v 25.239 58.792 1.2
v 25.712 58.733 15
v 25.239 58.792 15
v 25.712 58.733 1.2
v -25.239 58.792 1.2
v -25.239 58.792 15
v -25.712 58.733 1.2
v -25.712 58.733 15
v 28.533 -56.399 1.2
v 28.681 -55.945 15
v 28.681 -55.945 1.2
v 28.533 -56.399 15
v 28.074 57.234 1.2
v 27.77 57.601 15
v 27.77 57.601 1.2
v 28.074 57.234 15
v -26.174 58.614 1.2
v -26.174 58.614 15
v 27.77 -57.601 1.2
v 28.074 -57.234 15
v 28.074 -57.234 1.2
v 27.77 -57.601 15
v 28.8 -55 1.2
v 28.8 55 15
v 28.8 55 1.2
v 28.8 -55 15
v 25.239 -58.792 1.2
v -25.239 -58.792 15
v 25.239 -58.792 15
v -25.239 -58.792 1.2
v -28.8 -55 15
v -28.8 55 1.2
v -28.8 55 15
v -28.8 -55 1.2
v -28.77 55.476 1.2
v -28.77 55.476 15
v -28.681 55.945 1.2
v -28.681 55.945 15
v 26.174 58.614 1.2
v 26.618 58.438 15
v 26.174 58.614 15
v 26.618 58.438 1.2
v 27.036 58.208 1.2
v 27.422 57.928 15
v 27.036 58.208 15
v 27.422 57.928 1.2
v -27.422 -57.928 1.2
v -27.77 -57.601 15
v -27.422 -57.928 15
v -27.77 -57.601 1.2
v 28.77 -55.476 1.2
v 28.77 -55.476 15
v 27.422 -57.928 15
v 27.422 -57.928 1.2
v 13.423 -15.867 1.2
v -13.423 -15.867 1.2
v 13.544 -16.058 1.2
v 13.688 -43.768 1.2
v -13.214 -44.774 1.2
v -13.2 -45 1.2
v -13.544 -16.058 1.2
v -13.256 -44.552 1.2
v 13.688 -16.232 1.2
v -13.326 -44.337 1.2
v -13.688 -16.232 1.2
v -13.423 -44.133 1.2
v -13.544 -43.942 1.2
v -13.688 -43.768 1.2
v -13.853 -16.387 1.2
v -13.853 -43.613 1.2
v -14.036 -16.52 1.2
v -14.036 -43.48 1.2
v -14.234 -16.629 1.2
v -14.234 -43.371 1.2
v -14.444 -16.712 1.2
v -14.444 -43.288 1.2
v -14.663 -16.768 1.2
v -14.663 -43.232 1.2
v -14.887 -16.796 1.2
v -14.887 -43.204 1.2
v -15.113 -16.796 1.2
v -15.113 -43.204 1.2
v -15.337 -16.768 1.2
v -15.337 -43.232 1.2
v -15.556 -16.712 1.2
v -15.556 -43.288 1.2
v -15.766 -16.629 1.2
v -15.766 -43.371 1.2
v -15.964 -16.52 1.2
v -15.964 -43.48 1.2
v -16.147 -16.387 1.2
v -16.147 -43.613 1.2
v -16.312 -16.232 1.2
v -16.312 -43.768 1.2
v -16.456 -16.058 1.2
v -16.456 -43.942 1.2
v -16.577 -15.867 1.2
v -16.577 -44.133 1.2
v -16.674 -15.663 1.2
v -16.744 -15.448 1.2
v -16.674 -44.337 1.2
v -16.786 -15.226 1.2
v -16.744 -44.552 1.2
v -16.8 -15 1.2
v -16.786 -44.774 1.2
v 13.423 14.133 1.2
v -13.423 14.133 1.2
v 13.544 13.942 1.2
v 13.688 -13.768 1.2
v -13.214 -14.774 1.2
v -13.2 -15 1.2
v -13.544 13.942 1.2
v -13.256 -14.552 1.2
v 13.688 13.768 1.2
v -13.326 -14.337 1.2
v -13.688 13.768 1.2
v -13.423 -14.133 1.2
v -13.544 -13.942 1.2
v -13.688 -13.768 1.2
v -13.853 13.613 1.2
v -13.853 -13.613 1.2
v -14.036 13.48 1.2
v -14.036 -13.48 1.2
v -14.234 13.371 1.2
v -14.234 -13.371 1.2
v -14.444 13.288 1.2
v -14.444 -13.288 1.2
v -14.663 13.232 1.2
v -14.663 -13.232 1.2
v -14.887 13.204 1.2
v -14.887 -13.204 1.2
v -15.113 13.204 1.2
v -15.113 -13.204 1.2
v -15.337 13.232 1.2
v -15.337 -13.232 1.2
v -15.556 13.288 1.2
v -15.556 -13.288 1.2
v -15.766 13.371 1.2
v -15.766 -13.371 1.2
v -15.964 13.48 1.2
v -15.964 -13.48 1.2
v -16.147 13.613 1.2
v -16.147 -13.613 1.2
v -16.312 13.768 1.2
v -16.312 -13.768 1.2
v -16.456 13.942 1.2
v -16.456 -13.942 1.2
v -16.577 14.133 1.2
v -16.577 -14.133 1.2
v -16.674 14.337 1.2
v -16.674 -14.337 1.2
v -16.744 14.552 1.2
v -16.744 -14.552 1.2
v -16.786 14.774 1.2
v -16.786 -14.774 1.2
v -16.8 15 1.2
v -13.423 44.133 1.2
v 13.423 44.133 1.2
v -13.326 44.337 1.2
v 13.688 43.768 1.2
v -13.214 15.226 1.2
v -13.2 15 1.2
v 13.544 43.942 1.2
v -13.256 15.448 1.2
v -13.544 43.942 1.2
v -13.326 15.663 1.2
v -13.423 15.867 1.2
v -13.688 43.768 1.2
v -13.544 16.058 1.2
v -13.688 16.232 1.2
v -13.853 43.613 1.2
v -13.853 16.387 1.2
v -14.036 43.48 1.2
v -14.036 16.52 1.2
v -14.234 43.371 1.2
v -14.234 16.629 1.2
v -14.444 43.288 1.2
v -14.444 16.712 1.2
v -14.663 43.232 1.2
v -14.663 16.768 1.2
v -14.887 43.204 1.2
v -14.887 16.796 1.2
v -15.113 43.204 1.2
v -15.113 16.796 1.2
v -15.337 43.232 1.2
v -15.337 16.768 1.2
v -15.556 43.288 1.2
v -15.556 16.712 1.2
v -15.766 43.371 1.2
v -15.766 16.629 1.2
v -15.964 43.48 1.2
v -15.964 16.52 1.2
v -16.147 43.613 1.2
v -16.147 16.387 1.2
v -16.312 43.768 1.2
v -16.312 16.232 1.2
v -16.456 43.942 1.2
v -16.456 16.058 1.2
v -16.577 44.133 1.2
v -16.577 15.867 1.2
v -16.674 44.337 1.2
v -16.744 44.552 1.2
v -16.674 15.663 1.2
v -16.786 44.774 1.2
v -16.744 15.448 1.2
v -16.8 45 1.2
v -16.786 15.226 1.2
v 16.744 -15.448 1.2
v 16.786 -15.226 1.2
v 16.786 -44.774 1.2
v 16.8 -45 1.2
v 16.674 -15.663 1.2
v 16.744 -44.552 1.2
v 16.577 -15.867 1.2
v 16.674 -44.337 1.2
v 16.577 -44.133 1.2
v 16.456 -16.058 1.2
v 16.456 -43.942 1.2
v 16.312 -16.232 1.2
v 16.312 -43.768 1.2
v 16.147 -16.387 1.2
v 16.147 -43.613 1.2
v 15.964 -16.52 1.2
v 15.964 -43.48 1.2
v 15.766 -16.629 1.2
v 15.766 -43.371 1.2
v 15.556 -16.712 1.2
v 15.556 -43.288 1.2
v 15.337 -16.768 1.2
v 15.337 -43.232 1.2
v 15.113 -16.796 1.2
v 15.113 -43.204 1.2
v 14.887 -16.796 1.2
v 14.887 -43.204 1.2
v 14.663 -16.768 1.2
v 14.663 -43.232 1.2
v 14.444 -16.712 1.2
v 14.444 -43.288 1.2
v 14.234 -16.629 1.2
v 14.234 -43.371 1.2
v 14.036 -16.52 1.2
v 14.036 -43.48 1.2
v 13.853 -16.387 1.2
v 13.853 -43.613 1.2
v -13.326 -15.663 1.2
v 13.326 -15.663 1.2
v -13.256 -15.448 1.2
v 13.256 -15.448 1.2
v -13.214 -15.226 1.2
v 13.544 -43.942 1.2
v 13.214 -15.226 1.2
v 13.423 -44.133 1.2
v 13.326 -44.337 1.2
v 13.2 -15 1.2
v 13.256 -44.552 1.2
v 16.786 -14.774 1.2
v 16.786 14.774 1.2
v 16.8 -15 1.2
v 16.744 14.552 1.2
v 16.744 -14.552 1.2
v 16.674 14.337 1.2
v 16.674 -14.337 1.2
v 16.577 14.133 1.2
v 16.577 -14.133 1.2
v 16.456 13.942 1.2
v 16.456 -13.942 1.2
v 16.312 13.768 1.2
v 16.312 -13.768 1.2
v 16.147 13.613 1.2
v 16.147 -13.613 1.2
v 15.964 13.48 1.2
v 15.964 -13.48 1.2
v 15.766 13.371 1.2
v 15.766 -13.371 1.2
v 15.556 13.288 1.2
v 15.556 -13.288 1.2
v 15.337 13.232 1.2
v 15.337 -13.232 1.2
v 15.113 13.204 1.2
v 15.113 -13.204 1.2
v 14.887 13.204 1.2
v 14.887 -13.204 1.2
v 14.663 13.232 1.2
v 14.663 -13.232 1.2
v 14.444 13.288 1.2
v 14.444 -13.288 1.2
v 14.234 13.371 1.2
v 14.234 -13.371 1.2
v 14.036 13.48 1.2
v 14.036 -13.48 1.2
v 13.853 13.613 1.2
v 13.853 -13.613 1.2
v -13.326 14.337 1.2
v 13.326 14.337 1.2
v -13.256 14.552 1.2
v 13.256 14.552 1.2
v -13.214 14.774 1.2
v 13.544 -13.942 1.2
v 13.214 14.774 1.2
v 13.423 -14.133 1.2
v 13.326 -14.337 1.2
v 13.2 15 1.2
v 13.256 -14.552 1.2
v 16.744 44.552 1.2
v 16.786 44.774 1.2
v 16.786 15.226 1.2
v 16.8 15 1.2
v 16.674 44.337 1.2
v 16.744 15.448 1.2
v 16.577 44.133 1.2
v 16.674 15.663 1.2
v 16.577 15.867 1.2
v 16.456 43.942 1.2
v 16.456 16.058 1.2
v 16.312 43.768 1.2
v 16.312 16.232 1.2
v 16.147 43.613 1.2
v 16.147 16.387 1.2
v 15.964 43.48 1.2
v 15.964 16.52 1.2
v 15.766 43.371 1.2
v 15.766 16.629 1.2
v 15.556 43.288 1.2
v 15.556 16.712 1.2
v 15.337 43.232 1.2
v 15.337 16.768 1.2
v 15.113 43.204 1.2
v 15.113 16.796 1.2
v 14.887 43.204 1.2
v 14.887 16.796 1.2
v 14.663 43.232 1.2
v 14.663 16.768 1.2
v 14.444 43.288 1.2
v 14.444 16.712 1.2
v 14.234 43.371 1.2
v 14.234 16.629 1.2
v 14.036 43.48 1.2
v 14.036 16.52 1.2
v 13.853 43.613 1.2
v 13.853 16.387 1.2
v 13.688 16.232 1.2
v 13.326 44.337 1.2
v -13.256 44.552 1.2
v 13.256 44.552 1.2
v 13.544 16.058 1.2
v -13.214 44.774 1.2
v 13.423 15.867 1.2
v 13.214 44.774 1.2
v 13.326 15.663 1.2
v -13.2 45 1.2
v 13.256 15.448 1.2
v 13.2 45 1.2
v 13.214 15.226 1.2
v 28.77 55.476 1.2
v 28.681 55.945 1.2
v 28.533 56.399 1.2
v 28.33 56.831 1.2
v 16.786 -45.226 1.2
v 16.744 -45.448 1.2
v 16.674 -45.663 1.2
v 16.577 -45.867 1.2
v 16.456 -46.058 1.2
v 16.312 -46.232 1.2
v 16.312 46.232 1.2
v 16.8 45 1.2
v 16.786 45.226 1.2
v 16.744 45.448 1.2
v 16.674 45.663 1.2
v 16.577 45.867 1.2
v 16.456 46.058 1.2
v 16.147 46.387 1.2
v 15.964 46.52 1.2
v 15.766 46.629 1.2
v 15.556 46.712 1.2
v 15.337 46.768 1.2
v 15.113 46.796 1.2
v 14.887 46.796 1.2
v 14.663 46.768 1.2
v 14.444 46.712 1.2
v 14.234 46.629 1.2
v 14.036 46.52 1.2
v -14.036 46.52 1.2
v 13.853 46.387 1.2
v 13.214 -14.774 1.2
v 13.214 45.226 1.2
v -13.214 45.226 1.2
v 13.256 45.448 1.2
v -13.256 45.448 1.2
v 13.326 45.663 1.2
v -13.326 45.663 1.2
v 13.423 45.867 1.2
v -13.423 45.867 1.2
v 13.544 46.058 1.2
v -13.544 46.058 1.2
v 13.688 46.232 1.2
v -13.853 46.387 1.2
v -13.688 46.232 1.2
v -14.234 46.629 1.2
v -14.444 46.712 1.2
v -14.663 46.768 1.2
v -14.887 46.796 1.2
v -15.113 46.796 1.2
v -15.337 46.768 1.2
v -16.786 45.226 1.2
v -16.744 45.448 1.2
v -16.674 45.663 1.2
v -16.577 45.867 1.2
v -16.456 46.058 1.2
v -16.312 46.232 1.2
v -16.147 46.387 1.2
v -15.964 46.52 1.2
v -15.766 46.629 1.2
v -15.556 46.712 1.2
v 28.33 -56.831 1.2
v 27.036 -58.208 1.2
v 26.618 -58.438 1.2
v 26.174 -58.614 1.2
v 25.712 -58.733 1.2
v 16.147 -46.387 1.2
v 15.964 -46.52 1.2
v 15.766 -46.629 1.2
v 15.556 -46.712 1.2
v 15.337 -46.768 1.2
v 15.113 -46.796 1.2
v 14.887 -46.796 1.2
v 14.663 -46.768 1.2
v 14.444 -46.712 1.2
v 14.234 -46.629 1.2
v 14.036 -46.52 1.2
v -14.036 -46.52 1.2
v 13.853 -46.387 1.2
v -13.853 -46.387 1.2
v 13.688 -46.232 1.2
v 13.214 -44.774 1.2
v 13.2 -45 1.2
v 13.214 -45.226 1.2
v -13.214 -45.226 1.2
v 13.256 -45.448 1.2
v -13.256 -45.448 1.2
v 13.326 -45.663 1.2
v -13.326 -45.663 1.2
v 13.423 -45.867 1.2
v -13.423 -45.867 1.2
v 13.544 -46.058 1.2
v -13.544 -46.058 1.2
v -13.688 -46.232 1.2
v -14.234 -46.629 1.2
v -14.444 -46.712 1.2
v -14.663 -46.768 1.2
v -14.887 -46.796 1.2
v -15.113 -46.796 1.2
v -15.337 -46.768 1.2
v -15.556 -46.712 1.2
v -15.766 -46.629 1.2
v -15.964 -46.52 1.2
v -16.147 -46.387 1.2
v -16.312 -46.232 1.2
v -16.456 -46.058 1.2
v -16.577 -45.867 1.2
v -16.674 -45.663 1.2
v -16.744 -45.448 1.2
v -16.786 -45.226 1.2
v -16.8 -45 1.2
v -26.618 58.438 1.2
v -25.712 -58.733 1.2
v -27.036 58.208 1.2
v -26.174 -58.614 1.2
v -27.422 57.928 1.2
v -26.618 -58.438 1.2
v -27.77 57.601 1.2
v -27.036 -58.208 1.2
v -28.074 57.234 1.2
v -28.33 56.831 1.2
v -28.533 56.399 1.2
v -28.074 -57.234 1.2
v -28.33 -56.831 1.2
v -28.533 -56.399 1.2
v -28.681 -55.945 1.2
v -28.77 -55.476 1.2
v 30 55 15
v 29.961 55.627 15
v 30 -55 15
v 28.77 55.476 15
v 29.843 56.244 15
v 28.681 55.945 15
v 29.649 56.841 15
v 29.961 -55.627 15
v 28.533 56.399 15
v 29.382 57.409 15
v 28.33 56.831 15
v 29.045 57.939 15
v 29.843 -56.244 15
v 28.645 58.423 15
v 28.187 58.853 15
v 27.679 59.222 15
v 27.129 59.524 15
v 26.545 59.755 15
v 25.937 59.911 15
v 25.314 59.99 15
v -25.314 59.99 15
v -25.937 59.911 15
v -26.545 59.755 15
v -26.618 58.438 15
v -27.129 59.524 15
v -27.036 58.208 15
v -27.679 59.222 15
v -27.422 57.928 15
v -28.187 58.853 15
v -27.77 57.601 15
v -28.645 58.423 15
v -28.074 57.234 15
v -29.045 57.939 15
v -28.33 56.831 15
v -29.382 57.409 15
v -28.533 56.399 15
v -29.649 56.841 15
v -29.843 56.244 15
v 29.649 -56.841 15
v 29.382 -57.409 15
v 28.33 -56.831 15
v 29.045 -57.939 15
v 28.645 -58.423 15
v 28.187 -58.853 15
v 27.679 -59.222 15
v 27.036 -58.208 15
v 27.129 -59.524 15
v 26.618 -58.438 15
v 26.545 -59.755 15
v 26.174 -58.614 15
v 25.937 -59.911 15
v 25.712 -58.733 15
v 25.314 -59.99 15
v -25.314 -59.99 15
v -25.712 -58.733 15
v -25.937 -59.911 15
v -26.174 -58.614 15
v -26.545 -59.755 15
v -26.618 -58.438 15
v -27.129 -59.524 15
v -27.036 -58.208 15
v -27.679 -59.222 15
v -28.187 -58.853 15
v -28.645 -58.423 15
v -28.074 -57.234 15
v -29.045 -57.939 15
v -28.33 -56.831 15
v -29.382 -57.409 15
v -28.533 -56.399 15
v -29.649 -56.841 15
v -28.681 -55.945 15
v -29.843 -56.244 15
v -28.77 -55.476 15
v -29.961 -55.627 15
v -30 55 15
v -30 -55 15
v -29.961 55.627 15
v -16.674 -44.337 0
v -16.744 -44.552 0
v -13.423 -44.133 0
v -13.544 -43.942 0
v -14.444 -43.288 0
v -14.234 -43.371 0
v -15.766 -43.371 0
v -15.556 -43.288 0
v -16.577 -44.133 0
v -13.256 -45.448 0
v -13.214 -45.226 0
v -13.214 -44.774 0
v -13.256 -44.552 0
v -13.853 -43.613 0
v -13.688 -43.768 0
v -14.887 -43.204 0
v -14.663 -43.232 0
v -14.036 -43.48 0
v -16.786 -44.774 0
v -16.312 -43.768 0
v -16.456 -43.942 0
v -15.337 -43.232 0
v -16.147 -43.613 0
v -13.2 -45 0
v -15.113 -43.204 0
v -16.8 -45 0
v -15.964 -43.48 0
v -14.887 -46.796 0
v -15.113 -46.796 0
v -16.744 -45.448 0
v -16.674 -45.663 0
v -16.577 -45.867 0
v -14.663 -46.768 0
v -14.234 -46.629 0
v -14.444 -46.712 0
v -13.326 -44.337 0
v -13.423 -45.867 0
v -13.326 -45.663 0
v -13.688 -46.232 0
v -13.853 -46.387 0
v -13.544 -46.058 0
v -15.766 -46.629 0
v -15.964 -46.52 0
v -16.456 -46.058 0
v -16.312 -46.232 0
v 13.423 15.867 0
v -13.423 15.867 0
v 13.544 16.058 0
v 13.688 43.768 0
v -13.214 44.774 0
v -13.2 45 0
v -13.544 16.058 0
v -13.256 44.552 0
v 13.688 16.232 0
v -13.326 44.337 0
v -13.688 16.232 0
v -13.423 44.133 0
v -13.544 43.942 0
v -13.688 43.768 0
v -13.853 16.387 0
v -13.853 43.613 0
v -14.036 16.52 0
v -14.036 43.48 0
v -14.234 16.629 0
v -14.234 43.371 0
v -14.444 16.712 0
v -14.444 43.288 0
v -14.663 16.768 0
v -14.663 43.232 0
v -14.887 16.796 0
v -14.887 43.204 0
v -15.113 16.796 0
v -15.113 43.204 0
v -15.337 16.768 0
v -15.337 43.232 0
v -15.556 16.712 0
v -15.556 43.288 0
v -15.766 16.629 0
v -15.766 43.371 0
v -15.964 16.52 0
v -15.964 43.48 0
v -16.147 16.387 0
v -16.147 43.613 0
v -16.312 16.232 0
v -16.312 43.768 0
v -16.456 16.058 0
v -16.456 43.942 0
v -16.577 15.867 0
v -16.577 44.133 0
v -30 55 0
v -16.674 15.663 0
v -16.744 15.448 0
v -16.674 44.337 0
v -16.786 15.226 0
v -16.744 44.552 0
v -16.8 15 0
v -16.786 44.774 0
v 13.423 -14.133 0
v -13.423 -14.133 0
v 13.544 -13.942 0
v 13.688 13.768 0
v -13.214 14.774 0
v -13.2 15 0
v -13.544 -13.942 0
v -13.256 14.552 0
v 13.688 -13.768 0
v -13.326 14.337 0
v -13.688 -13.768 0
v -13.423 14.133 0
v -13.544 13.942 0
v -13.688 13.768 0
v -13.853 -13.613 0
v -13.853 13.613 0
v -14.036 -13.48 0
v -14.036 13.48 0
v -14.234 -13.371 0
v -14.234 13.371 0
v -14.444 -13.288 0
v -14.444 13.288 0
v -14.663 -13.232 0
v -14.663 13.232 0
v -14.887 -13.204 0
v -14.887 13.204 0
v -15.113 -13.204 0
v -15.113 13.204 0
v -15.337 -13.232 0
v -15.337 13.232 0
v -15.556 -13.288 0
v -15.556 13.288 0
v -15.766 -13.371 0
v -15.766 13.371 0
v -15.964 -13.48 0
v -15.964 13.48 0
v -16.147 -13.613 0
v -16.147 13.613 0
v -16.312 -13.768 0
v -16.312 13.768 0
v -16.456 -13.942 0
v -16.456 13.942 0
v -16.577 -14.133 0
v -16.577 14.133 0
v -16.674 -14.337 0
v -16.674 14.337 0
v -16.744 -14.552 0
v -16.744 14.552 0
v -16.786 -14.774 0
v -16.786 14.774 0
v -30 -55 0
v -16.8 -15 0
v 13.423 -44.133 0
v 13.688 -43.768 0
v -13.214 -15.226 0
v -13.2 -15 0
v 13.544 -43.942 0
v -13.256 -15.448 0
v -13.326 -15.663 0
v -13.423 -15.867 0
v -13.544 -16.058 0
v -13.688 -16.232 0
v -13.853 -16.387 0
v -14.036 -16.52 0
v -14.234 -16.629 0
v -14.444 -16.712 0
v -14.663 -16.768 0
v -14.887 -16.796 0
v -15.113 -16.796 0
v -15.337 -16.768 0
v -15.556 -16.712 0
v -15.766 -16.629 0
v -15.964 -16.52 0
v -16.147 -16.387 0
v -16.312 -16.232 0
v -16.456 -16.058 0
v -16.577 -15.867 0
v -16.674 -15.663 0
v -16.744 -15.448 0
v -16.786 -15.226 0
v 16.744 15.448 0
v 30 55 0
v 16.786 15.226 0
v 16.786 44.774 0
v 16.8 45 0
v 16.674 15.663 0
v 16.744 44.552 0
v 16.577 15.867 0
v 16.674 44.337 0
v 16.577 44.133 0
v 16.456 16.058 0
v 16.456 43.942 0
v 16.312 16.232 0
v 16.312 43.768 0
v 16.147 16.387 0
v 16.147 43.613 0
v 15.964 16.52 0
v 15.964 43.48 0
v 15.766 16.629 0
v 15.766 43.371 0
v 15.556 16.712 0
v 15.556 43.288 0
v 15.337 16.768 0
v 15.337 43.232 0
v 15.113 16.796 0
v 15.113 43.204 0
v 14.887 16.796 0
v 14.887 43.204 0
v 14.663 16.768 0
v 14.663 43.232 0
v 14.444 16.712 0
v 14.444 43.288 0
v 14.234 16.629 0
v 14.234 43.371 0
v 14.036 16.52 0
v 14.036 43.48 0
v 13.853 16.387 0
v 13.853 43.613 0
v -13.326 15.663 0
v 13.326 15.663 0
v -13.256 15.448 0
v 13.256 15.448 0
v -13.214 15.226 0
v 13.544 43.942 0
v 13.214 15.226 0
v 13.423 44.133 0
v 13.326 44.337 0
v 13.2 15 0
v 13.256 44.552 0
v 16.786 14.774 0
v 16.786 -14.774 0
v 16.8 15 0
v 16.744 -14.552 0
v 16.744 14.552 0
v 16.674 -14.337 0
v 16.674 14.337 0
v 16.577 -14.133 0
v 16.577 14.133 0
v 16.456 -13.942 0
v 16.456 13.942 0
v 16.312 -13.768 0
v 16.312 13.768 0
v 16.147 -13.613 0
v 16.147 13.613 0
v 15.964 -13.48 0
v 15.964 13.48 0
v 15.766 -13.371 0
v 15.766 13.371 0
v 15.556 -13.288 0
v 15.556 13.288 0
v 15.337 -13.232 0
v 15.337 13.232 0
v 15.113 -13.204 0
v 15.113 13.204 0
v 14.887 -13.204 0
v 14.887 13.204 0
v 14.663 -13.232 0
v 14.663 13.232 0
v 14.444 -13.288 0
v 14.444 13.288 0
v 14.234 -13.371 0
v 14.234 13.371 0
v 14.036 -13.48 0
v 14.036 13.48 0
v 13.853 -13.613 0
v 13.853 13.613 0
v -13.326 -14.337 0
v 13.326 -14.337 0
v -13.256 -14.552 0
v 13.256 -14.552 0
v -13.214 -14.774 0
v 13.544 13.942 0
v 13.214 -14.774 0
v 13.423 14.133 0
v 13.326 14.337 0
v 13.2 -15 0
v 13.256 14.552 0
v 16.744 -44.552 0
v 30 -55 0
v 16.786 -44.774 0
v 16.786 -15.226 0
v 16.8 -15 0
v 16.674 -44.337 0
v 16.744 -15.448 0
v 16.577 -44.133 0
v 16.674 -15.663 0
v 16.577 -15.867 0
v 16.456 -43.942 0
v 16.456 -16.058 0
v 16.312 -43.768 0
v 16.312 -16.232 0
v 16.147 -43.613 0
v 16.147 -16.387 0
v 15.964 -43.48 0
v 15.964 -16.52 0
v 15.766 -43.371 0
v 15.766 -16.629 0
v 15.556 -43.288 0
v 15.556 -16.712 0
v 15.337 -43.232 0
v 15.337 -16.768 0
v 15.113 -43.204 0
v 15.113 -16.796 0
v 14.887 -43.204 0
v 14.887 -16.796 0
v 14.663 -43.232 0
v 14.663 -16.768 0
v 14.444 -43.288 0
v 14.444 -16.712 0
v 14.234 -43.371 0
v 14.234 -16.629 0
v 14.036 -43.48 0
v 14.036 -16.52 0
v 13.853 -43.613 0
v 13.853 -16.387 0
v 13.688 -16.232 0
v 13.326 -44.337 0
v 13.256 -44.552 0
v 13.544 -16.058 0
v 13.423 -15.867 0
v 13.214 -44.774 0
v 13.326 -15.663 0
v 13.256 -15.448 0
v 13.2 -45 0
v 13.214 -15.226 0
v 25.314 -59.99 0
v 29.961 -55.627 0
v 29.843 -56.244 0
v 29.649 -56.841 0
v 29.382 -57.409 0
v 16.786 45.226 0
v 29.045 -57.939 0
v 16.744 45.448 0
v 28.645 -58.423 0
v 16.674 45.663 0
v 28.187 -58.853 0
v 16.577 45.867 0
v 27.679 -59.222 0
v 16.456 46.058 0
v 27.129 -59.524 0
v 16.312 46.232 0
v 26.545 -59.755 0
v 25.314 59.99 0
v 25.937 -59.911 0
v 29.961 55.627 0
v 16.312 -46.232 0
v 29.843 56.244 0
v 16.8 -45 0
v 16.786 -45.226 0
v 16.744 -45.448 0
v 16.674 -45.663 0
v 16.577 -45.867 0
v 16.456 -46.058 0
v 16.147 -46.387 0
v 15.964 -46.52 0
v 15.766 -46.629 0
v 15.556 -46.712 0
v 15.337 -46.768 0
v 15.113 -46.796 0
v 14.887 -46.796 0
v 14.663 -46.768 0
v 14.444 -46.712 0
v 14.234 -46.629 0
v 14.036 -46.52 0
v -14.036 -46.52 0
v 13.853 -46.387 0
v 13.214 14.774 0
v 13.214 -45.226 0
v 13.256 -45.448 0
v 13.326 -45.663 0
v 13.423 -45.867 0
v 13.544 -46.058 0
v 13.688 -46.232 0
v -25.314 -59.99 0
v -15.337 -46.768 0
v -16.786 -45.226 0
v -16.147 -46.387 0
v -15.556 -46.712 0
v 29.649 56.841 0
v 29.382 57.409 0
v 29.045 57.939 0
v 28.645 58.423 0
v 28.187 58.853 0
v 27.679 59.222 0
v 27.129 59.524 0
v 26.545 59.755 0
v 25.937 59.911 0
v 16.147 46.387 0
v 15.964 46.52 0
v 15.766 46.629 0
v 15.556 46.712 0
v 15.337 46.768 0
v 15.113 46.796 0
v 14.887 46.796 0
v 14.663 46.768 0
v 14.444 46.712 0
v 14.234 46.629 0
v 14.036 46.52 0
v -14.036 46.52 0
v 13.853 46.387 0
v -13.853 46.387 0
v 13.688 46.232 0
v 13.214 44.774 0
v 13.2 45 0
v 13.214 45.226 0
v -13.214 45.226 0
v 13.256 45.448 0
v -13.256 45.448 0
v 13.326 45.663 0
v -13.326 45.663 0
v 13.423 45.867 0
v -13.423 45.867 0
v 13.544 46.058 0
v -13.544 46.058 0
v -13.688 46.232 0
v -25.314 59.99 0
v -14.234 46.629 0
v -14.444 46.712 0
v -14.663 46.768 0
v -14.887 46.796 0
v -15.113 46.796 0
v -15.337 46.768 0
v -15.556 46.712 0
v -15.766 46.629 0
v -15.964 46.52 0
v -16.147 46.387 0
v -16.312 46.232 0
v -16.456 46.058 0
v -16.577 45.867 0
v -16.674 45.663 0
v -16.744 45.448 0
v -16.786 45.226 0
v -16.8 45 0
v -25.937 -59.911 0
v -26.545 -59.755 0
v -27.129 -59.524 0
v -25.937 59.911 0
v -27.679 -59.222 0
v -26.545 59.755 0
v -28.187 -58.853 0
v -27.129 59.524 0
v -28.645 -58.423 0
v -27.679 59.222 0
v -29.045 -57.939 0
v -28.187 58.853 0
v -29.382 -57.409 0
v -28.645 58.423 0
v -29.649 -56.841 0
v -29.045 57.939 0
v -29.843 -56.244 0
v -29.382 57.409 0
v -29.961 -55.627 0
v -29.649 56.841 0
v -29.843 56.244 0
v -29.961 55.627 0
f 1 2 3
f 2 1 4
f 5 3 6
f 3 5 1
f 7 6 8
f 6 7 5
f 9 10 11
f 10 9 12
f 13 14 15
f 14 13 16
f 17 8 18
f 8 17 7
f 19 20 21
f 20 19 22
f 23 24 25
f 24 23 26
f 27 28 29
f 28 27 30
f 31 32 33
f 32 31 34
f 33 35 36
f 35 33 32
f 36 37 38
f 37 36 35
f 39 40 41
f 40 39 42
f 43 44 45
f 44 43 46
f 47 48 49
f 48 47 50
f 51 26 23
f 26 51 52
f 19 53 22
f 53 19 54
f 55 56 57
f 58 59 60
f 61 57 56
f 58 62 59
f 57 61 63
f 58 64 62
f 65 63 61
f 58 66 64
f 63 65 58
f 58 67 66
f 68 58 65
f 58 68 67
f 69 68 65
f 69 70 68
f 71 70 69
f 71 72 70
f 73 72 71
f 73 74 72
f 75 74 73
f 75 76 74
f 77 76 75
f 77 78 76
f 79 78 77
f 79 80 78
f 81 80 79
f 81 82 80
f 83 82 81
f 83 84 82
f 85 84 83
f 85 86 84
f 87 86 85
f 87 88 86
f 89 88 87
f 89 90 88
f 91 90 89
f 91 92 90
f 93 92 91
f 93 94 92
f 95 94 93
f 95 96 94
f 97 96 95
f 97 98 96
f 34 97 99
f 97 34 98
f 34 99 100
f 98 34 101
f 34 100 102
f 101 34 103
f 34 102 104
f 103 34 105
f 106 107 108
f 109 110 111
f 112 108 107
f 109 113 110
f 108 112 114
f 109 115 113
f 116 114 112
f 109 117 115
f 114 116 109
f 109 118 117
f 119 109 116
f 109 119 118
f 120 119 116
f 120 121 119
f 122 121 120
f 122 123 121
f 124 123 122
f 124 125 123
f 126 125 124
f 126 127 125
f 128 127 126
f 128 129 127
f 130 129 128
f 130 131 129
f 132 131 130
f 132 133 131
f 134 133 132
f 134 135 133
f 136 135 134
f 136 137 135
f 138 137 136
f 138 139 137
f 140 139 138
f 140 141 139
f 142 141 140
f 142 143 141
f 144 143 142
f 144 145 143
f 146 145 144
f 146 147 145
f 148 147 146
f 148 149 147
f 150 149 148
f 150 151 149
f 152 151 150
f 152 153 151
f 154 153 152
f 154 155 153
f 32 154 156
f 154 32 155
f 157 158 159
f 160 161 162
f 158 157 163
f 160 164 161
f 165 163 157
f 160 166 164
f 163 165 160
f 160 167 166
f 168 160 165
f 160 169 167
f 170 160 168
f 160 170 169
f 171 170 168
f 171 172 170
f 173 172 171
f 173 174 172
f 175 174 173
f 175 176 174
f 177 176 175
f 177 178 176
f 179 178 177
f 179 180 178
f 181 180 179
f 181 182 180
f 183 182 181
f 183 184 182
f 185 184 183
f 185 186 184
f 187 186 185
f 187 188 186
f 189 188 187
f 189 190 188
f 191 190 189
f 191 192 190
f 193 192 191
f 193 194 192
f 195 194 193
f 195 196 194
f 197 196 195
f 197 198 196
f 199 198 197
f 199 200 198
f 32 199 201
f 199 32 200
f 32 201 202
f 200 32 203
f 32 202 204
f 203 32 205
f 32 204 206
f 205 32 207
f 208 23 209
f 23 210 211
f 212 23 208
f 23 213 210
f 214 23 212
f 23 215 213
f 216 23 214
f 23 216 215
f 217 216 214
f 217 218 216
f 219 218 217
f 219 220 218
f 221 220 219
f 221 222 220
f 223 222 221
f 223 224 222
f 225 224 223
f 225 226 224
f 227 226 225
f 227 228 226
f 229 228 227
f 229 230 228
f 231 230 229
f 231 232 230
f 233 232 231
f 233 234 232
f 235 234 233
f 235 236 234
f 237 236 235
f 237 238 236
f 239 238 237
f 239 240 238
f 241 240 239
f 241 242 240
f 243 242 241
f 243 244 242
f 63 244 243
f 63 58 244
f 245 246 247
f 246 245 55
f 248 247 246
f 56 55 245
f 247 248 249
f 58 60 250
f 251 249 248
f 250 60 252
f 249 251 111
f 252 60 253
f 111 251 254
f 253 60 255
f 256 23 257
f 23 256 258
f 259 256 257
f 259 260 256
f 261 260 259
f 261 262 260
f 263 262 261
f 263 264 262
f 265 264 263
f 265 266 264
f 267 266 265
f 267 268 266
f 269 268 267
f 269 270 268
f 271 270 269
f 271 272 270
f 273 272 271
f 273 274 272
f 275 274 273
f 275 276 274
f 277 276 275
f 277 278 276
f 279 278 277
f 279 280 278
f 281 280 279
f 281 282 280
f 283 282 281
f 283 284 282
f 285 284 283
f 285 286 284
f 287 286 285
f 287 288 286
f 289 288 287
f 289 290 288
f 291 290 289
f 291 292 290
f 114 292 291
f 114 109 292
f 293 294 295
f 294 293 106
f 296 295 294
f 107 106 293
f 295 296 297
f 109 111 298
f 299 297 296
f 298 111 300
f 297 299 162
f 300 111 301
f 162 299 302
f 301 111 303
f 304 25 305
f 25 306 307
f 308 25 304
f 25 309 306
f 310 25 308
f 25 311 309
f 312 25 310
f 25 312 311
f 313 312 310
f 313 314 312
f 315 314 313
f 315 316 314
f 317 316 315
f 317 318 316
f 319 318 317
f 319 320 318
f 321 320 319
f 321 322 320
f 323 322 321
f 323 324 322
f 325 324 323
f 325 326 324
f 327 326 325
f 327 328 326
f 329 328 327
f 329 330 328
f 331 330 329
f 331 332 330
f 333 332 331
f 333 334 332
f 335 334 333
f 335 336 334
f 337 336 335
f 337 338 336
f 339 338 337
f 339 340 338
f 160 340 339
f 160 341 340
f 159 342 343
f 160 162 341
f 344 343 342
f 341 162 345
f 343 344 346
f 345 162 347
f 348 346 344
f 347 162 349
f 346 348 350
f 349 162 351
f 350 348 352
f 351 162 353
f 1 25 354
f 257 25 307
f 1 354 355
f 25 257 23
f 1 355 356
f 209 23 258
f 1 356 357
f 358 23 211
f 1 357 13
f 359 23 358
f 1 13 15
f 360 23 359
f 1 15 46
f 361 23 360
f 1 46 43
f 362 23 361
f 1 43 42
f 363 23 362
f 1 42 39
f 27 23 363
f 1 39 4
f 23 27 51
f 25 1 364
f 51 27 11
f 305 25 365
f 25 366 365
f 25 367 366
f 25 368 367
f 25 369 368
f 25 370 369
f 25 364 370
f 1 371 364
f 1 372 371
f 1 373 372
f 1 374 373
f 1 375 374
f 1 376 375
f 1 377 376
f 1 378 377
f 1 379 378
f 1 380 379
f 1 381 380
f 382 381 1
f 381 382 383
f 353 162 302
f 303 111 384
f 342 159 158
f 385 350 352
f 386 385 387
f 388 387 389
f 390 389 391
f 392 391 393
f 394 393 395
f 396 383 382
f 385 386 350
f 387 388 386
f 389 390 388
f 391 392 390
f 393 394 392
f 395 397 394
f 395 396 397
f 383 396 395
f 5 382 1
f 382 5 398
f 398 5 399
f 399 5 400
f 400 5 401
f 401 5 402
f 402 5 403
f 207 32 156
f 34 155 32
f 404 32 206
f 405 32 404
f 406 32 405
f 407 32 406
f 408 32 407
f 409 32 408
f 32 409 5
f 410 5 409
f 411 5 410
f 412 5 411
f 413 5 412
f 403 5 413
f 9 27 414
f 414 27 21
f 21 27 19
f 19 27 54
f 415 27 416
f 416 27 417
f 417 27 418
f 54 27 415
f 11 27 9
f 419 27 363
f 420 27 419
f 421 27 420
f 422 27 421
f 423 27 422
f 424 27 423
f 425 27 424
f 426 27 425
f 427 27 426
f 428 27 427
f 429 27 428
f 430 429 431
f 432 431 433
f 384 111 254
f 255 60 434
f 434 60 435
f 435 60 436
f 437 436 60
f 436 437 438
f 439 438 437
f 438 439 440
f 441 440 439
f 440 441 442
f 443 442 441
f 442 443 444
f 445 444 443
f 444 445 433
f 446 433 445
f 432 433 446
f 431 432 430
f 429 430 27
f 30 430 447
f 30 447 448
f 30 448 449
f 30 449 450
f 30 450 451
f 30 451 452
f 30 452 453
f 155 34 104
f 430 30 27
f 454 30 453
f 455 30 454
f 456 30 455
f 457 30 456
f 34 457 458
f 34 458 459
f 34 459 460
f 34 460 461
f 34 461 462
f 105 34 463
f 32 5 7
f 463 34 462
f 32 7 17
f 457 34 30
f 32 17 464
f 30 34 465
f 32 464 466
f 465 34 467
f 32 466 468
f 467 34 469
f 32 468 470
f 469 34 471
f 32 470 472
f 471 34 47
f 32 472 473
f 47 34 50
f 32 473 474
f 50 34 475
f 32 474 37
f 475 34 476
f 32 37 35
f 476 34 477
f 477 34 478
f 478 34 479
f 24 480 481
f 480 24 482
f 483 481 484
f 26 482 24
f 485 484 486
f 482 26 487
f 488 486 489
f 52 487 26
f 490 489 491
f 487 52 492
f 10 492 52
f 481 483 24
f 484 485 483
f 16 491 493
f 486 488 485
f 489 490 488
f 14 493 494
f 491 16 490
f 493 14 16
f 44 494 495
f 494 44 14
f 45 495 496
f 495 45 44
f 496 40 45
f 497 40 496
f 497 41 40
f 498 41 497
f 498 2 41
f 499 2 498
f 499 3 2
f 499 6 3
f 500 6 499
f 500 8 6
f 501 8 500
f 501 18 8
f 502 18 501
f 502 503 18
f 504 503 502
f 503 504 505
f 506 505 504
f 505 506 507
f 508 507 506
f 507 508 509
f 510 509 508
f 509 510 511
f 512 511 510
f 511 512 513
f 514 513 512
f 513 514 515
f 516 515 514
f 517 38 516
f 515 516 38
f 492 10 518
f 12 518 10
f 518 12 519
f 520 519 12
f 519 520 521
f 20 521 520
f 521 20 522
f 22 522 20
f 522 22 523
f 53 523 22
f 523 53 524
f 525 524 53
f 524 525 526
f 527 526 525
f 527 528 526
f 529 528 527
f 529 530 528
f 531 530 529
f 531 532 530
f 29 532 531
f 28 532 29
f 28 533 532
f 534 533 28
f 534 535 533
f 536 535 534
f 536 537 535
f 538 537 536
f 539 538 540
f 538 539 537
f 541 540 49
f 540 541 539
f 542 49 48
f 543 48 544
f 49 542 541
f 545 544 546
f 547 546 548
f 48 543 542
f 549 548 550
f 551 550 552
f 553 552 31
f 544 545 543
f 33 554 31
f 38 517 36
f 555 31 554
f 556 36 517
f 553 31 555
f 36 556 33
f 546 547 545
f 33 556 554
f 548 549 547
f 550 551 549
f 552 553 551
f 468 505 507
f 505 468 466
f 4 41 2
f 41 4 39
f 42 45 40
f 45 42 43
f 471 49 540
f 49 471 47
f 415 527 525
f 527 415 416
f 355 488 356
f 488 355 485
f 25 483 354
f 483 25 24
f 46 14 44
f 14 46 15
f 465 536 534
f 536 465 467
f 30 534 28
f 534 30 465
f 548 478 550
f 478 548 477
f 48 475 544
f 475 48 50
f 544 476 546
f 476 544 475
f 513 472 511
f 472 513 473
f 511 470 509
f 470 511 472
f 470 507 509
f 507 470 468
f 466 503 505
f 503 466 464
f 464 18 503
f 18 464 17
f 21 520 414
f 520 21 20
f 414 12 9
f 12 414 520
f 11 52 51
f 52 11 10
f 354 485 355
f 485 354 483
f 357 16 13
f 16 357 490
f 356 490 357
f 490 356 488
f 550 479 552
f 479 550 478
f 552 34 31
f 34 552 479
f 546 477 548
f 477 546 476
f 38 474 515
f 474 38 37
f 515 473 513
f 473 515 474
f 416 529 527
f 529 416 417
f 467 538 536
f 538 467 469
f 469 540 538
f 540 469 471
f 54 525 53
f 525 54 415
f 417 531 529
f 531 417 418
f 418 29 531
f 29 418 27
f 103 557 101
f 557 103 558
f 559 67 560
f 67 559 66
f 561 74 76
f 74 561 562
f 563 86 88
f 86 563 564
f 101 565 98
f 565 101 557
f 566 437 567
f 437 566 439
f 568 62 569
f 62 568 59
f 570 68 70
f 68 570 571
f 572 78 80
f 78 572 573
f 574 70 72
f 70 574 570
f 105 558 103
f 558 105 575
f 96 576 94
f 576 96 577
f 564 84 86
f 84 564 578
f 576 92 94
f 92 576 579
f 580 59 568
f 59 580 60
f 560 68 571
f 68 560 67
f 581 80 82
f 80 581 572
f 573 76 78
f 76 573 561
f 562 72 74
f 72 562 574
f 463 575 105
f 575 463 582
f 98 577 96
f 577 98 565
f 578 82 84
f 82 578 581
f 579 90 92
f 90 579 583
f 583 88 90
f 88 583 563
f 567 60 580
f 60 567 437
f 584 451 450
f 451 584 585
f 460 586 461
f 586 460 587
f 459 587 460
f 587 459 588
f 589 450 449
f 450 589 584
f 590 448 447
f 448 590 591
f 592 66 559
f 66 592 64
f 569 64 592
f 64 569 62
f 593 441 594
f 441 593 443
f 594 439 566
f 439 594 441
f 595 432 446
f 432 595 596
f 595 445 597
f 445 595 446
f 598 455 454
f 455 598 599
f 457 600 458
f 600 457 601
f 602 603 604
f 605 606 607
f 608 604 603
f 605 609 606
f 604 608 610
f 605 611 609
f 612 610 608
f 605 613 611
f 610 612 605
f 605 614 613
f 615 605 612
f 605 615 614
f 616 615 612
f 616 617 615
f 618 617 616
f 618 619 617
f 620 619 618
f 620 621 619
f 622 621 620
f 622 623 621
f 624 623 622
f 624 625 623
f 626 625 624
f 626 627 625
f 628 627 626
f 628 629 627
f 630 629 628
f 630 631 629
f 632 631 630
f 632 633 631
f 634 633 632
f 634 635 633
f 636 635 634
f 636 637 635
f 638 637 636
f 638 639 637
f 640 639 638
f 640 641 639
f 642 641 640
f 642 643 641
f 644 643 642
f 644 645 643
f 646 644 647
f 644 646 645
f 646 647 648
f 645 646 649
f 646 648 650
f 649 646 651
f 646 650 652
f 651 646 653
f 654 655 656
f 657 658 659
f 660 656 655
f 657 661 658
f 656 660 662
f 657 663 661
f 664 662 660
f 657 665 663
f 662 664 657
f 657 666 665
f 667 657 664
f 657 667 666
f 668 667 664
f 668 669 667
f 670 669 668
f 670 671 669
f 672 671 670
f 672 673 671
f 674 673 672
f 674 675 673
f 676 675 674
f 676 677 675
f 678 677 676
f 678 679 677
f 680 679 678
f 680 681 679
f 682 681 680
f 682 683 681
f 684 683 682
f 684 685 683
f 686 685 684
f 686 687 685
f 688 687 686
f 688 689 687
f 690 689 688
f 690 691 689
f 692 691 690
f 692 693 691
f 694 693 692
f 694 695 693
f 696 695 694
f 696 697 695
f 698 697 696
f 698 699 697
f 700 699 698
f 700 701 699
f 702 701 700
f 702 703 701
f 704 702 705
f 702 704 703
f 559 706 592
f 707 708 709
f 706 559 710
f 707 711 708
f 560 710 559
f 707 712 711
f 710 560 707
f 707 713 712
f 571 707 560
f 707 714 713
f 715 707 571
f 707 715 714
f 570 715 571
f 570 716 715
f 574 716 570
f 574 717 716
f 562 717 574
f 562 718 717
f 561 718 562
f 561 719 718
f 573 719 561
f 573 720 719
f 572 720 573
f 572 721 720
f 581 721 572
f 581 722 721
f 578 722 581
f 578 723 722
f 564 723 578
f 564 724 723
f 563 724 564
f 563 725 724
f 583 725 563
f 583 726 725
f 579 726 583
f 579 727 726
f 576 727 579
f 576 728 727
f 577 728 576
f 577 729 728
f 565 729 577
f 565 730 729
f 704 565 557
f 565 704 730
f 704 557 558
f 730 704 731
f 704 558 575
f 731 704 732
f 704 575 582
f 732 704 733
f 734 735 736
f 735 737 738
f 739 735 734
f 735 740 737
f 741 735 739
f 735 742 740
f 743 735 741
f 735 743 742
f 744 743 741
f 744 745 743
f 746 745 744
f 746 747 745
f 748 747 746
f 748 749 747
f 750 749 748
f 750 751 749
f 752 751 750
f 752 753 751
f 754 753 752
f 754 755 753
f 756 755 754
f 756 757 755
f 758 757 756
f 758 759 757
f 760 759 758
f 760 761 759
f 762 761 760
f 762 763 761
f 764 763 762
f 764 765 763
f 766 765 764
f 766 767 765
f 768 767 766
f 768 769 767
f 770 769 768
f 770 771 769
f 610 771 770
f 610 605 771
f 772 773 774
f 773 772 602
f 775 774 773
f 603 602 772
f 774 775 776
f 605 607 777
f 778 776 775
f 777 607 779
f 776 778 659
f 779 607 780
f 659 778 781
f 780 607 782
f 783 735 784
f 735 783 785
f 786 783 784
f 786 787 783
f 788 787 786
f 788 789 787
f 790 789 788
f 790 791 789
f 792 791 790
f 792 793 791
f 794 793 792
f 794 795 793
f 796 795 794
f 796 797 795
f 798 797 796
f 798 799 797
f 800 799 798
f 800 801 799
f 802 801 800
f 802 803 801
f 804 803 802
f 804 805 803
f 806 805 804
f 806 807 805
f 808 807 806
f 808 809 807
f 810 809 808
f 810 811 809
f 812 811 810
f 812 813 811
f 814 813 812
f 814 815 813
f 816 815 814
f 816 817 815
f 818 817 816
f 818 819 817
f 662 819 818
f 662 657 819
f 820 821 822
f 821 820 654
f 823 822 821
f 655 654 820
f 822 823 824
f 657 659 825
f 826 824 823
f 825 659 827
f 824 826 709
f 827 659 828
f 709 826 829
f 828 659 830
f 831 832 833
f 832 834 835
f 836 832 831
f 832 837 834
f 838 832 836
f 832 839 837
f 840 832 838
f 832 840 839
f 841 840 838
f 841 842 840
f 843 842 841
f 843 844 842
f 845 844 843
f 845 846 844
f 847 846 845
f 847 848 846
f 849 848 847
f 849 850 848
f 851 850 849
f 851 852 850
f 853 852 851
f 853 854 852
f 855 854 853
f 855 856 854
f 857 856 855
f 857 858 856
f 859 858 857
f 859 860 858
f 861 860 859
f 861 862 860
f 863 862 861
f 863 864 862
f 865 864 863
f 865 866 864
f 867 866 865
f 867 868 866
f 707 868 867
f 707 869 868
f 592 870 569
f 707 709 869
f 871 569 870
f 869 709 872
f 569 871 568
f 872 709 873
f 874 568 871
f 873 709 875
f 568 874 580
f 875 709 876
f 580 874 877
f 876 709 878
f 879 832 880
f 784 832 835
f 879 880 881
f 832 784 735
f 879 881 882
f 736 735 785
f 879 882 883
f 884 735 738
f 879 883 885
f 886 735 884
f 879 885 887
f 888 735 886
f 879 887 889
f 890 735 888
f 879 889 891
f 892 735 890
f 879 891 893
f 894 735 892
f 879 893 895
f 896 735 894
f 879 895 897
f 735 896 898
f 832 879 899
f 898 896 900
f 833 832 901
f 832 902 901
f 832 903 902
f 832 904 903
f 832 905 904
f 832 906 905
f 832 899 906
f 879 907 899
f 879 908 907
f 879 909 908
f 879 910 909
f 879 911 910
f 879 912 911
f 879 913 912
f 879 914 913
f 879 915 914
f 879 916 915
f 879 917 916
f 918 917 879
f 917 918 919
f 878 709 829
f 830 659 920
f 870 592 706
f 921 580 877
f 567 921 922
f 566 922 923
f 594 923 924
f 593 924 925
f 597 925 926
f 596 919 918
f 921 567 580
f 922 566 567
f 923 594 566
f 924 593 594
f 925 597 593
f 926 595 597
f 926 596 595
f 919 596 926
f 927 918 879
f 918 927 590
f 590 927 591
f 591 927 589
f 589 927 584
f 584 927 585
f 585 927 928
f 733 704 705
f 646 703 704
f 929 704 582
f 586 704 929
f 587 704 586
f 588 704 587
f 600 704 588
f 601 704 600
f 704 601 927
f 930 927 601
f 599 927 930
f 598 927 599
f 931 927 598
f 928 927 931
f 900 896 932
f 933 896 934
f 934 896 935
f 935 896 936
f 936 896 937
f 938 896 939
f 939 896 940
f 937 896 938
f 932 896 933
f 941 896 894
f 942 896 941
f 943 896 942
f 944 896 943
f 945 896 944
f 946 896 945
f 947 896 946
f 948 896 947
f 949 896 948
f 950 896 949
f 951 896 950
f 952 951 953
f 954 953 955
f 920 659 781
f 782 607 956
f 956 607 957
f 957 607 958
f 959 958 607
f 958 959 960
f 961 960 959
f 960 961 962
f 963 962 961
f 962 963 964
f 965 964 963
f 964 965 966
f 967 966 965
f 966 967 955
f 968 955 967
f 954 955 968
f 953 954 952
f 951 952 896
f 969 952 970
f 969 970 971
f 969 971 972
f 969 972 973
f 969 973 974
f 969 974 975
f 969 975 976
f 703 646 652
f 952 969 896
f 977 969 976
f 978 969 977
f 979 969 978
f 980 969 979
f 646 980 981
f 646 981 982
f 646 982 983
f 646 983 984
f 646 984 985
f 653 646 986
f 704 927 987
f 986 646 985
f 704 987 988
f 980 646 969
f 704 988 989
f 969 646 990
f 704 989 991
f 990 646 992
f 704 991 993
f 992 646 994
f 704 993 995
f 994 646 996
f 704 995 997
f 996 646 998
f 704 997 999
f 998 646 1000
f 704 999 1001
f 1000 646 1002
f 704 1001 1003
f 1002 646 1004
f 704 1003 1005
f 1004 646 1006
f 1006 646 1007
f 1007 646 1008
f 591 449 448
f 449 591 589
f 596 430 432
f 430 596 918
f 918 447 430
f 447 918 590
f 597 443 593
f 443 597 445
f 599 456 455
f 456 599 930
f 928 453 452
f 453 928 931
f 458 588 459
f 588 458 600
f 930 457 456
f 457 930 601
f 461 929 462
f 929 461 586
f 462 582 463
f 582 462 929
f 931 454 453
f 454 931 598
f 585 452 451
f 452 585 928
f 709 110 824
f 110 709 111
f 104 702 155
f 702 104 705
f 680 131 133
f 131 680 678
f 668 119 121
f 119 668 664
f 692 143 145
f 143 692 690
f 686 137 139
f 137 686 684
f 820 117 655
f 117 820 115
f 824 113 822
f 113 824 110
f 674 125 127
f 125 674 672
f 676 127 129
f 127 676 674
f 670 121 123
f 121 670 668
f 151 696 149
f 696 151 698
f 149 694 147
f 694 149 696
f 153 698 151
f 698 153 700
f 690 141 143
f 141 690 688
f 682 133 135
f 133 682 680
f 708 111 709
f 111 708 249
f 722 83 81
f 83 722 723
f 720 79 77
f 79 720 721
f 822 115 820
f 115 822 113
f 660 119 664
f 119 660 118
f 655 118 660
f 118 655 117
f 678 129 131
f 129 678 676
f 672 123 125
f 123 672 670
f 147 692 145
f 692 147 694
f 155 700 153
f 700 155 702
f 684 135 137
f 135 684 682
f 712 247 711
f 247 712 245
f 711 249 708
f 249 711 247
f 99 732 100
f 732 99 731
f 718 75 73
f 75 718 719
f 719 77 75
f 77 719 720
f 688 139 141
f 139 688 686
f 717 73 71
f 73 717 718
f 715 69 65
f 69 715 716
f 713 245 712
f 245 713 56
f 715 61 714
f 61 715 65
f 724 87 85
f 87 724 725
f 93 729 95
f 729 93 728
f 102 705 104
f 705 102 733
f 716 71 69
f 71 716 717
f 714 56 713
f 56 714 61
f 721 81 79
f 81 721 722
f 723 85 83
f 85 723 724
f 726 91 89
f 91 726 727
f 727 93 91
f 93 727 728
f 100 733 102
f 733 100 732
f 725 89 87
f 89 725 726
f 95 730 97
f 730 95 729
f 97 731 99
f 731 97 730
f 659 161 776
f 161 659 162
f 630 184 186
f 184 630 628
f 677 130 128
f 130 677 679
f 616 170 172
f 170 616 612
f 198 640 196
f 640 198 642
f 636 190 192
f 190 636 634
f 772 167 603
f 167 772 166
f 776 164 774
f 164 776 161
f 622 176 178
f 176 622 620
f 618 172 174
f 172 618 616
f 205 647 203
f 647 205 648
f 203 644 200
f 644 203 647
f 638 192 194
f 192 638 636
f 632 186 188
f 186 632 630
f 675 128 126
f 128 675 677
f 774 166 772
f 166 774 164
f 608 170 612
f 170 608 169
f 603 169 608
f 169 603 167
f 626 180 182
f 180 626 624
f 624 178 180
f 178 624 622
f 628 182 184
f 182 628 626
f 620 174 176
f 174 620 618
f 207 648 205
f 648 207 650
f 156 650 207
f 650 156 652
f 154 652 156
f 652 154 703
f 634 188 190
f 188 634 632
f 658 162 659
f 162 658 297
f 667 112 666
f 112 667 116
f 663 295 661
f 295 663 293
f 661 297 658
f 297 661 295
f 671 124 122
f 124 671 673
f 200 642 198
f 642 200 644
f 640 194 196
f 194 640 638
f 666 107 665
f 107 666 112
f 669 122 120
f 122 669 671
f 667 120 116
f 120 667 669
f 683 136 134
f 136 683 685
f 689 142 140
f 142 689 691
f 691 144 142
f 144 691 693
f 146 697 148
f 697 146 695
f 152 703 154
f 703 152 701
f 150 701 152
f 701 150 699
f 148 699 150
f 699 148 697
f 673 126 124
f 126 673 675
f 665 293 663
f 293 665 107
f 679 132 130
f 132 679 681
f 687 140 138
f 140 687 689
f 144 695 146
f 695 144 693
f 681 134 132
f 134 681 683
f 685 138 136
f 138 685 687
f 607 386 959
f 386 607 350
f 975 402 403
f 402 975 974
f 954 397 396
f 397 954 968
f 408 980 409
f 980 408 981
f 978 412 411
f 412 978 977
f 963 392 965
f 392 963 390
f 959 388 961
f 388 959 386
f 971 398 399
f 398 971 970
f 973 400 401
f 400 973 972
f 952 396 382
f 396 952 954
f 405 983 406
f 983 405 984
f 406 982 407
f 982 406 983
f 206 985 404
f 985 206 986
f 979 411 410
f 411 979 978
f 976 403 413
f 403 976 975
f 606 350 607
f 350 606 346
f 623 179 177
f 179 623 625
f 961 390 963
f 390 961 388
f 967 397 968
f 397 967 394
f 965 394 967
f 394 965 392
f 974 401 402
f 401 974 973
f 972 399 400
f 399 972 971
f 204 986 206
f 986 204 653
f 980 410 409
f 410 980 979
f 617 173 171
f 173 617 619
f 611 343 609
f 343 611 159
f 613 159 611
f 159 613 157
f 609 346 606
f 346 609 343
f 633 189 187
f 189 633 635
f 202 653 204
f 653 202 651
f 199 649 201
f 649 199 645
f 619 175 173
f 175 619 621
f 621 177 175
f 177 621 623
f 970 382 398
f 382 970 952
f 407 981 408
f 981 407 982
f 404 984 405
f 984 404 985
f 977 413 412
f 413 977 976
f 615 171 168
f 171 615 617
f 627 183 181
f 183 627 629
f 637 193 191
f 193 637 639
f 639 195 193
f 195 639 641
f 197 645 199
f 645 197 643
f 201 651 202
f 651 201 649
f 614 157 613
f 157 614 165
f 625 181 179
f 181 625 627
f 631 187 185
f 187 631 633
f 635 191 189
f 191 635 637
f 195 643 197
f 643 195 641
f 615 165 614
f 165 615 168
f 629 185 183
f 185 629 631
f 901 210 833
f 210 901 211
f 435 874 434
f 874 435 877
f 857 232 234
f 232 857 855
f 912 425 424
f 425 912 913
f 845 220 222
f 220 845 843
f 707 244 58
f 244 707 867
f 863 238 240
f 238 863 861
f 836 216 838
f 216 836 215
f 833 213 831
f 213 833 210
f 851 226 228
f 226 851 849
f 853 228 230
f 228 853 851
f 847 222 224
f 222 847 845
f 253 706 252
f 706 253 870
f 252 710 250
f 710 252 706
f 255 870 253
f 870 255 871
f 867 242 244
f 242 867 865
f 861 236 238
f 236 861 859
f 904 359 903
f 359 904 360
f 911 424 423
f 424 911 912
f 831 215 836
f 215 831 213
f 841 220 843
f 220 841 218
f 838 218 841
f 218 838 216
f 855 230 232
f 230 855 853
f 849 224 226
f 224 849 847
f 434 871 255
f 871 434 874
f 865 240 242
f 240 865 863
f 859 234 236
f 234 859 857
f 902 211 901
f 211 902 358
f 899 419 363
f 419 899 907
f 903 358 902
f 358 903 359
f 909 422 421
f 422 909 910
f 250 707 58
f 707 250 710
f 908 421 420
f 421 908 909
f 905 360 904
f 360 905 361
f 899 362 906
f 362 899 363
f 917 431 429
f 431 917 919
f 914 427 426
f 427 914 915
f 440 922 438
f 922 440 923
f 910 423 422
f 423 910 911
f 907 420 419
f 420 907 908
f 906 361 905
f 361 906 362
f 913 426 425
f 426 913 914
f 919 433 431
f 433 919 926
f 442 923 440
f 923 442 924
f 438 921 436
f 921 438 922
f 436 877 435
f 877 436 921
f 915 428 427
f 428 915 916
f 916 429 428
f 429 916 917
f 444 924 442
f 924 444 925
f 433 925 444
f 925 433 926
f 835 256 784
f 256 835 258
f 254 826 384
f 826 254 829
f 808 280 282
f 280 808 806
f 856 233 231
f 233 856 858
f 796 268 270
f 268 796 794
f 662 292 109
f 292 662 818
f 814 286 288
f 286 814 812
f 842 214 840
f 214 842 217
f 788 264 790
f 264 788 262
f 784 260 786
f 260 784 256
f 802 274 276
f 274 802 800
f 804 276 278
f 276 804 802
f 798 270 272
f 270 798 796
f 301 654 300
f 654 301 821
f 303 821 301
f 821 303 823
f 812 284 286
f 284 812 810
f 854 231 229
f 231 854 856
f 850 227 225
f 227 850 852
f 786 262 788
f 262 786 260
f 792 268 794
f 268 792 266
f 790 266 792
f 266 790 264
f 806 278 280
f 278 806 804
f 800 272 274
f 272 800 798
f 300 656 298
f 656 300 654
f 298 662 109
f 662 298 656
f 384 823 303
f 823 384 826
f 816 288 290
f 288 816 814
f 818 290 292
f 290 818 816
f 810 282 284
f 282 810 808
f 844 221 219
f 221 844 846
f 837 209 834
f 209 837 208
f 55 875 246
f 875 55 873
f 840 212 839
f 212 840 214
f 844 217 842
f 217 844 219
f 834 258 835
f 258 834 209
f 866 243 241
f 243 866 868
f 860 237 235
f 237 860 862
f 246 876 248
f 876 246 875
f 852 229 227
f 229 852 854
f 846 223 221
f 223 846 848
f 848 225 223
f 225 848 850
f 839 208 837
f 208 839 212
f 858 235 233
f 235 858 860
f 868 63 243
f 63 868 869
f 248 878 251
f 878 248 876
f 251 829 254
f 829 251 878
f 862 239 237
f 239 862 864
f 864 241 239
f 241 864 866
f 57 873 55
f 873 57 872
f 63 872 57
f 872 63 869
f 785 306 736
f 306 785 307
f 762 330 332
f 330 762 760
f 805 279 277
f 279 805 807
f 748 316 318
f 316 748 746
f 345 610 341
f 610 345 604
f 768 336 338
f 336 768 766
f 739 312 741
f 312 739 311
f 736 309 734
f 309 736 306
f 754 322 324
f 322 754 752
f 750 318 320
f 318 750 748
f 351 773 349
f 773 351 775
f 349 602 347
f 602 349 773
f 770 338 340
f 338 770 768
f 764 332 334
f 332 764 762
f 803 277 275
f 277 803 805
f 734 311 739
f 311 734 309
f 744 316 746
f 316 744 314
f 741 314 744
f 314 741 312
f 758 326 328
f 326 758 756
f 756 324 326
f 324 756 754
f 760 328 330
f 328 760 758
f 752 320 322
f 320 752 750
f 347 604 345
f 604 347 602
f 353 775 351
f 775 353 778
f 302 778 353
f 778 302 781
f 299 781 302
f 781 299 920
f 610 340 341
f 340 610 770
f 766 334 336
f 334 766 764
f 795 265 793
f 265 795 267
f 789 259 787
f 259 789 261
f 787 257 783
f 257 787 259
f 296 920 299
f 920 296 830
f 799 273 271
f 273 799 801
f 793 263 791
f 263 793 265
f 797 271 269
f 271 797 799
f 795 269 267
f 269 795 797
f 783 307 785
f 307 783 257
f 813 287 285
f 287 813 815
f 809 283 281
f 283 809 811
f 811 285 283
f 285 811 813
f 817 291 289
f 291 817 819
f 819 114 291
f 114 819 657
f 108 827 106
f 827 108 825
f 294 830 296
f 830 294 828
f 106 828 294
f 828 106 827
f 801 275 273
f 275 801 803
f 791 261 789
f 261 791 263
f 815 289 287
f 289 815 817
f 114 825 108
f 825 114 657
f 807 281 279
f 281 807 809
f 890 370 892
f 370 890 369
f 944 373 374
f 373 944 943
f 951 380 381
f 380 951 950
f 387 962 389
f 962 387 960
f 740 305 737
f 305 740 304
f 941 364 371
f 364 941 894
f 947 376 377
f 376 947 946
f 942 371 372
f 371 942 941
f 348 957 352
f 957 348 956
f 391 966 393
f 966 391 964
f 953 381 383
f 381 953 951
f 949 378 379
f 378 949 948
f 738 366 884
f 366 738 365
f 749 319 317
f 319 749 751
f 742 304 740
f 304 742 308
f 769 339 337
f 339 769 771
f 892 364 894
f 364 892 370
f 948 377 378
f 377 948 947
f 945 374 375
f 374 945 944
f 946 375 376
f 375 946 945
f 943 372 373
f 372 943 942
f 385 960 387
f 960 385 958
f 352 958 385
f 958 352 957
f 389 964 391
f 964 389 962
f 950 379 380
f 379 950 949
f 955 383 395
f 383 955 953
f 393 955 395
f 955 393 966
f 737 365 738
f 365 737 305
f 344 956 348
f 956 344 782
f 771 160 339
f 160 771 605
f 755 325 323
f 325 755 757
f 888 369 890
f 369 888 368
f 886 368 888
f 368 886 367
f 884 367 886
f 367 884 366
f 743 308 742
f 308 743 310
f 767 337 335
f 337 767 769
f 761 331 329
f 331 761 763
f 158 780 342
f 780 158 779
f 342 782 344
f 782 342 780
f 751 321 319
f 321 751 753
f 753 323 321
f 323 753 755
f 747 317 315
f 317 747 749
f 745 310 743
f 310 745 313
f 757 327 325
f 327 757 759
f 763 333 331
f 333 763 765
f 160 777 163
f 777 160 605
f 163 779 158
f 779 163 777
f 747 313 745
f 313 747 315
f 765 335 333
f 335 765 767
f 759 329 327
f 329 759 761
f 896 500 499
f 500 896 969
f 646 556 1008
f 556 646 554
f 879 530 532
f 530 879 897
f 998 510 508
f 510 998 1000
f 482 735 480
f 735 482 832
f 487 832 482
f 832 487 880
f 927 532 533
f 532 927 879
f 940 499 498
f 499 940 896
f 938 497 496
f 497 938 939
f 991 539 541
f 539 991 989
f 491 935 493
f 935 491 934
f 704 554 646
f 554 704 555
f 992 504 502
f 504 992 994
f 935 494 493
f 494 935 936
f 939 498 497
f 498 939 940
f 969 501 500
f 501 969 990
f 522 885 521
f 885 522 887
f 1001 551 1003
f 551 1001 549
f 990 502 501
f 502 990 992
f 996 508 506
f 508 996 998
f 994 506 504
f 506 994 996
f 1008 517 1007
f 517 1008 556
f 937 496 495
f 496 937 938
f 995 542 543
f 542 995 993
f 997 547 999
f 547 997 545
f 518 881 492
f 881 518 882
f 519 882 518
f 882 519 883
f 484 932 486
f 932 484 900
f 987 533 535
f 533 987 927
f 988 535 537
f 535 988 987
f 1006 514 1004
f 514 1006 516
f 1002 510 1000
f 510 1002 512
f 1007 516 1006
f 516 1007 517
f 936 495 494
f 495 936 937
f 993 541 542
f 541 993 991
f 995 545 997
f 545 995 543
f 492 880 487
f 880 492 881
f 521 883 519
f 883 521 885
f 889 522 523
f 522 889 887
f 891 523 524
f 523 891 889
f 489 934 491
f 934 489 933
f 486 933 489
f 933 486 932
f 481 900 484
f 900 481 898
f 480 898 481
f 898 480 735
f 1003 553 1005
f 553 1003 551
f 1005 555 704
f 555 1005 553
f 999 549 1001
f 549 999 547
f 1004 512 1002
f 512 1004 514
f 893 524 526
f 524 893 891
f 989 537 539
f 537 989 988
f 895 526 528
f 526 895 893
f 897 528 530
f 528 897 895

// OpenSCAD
$fn = 50;


difference() {
	union() {
		hull() {
			translate(v = [-25.0000000000, 55.0000000000, 0]) {
				cylinder(h = 15, r = 5);
			}
			translate(v = [25.0000000000, 55.0000000000, 0]) {
				cylinder(h = 15, r = 5);
			}
			translate(v = [-25.0000000000, -55.0000000000, 0]) {
				cylinder(h = 15, r = 5);
			}
			translate(v = [25.0000000000, -55.0000000000, 0]) {
				cylinder(h = 15, r = 5);
			}
		}
	}
	union() {
		translate(v = [0, 0, 1.2000000000]) {
			hull() {
				translate(v = [-25.0000000000, 55.0000000000, 0]) {
					cylinder(h = 13.8000000000, r = 3.8000000000);
				}
				translate(v = [25.0000000000, 55.0000000000, 0]) {
					cylinder(h = 13.8000000000, r = 3.8000000000);
				}
				translate(v = [-25.0000000000, -55.0000000000, 0]) {
					cylinder(h = 13.8000000000, r = 3.8000000000);
				}
				translate(v = [25.0000000000, -55.0000000000, 0]) {
					cylinder(h = 13.8000000000, r = 3.8000000000);
				}
			}
		}
		#translate(v = [-15.0000000000, -45.0000000000, 0]) {
			cylinder(h = 1.2000000000, r = 1.8000000000);
		}
		#translate(v = [-15.0000000000, -15.0000000000, 0]) {
			cylinder(h = 1.2000000000, r = 1.8000000000);
		}
		#translate(v = [-15.0000000000, 15.0000000000, 0]) {
			cylinder(h = 1.2000000000, r = 1.8000000000);
		}
		#translate(v = [-15.0000000000, 45.0000000000, 0]) {
			cylinder(h = 1.2000000000, r = 1.8000000000);
		}
		#translate(v = [15.0000000000, -45.0000000000, 0]) {
			cylinder(h = 1.2000000000, r = 1.8000000000);
		}
		#translate(v = [15.0000000000, -15.0000000000, 0]) {
			cylinder(h = 1.2000000000, r = 1.8000000000);
		}
		#translate(v = [15.0000000000, 15.0000000000, 0]) {
			cylinder(h = 1.2000000000, r = 1.8000000000);
		}
		#translate(v = [15.0000000000, 45.0000000000, 0]) {
			cylinder(h = 1.2000000000, r = 1.8000000000);
		}
	}
}
